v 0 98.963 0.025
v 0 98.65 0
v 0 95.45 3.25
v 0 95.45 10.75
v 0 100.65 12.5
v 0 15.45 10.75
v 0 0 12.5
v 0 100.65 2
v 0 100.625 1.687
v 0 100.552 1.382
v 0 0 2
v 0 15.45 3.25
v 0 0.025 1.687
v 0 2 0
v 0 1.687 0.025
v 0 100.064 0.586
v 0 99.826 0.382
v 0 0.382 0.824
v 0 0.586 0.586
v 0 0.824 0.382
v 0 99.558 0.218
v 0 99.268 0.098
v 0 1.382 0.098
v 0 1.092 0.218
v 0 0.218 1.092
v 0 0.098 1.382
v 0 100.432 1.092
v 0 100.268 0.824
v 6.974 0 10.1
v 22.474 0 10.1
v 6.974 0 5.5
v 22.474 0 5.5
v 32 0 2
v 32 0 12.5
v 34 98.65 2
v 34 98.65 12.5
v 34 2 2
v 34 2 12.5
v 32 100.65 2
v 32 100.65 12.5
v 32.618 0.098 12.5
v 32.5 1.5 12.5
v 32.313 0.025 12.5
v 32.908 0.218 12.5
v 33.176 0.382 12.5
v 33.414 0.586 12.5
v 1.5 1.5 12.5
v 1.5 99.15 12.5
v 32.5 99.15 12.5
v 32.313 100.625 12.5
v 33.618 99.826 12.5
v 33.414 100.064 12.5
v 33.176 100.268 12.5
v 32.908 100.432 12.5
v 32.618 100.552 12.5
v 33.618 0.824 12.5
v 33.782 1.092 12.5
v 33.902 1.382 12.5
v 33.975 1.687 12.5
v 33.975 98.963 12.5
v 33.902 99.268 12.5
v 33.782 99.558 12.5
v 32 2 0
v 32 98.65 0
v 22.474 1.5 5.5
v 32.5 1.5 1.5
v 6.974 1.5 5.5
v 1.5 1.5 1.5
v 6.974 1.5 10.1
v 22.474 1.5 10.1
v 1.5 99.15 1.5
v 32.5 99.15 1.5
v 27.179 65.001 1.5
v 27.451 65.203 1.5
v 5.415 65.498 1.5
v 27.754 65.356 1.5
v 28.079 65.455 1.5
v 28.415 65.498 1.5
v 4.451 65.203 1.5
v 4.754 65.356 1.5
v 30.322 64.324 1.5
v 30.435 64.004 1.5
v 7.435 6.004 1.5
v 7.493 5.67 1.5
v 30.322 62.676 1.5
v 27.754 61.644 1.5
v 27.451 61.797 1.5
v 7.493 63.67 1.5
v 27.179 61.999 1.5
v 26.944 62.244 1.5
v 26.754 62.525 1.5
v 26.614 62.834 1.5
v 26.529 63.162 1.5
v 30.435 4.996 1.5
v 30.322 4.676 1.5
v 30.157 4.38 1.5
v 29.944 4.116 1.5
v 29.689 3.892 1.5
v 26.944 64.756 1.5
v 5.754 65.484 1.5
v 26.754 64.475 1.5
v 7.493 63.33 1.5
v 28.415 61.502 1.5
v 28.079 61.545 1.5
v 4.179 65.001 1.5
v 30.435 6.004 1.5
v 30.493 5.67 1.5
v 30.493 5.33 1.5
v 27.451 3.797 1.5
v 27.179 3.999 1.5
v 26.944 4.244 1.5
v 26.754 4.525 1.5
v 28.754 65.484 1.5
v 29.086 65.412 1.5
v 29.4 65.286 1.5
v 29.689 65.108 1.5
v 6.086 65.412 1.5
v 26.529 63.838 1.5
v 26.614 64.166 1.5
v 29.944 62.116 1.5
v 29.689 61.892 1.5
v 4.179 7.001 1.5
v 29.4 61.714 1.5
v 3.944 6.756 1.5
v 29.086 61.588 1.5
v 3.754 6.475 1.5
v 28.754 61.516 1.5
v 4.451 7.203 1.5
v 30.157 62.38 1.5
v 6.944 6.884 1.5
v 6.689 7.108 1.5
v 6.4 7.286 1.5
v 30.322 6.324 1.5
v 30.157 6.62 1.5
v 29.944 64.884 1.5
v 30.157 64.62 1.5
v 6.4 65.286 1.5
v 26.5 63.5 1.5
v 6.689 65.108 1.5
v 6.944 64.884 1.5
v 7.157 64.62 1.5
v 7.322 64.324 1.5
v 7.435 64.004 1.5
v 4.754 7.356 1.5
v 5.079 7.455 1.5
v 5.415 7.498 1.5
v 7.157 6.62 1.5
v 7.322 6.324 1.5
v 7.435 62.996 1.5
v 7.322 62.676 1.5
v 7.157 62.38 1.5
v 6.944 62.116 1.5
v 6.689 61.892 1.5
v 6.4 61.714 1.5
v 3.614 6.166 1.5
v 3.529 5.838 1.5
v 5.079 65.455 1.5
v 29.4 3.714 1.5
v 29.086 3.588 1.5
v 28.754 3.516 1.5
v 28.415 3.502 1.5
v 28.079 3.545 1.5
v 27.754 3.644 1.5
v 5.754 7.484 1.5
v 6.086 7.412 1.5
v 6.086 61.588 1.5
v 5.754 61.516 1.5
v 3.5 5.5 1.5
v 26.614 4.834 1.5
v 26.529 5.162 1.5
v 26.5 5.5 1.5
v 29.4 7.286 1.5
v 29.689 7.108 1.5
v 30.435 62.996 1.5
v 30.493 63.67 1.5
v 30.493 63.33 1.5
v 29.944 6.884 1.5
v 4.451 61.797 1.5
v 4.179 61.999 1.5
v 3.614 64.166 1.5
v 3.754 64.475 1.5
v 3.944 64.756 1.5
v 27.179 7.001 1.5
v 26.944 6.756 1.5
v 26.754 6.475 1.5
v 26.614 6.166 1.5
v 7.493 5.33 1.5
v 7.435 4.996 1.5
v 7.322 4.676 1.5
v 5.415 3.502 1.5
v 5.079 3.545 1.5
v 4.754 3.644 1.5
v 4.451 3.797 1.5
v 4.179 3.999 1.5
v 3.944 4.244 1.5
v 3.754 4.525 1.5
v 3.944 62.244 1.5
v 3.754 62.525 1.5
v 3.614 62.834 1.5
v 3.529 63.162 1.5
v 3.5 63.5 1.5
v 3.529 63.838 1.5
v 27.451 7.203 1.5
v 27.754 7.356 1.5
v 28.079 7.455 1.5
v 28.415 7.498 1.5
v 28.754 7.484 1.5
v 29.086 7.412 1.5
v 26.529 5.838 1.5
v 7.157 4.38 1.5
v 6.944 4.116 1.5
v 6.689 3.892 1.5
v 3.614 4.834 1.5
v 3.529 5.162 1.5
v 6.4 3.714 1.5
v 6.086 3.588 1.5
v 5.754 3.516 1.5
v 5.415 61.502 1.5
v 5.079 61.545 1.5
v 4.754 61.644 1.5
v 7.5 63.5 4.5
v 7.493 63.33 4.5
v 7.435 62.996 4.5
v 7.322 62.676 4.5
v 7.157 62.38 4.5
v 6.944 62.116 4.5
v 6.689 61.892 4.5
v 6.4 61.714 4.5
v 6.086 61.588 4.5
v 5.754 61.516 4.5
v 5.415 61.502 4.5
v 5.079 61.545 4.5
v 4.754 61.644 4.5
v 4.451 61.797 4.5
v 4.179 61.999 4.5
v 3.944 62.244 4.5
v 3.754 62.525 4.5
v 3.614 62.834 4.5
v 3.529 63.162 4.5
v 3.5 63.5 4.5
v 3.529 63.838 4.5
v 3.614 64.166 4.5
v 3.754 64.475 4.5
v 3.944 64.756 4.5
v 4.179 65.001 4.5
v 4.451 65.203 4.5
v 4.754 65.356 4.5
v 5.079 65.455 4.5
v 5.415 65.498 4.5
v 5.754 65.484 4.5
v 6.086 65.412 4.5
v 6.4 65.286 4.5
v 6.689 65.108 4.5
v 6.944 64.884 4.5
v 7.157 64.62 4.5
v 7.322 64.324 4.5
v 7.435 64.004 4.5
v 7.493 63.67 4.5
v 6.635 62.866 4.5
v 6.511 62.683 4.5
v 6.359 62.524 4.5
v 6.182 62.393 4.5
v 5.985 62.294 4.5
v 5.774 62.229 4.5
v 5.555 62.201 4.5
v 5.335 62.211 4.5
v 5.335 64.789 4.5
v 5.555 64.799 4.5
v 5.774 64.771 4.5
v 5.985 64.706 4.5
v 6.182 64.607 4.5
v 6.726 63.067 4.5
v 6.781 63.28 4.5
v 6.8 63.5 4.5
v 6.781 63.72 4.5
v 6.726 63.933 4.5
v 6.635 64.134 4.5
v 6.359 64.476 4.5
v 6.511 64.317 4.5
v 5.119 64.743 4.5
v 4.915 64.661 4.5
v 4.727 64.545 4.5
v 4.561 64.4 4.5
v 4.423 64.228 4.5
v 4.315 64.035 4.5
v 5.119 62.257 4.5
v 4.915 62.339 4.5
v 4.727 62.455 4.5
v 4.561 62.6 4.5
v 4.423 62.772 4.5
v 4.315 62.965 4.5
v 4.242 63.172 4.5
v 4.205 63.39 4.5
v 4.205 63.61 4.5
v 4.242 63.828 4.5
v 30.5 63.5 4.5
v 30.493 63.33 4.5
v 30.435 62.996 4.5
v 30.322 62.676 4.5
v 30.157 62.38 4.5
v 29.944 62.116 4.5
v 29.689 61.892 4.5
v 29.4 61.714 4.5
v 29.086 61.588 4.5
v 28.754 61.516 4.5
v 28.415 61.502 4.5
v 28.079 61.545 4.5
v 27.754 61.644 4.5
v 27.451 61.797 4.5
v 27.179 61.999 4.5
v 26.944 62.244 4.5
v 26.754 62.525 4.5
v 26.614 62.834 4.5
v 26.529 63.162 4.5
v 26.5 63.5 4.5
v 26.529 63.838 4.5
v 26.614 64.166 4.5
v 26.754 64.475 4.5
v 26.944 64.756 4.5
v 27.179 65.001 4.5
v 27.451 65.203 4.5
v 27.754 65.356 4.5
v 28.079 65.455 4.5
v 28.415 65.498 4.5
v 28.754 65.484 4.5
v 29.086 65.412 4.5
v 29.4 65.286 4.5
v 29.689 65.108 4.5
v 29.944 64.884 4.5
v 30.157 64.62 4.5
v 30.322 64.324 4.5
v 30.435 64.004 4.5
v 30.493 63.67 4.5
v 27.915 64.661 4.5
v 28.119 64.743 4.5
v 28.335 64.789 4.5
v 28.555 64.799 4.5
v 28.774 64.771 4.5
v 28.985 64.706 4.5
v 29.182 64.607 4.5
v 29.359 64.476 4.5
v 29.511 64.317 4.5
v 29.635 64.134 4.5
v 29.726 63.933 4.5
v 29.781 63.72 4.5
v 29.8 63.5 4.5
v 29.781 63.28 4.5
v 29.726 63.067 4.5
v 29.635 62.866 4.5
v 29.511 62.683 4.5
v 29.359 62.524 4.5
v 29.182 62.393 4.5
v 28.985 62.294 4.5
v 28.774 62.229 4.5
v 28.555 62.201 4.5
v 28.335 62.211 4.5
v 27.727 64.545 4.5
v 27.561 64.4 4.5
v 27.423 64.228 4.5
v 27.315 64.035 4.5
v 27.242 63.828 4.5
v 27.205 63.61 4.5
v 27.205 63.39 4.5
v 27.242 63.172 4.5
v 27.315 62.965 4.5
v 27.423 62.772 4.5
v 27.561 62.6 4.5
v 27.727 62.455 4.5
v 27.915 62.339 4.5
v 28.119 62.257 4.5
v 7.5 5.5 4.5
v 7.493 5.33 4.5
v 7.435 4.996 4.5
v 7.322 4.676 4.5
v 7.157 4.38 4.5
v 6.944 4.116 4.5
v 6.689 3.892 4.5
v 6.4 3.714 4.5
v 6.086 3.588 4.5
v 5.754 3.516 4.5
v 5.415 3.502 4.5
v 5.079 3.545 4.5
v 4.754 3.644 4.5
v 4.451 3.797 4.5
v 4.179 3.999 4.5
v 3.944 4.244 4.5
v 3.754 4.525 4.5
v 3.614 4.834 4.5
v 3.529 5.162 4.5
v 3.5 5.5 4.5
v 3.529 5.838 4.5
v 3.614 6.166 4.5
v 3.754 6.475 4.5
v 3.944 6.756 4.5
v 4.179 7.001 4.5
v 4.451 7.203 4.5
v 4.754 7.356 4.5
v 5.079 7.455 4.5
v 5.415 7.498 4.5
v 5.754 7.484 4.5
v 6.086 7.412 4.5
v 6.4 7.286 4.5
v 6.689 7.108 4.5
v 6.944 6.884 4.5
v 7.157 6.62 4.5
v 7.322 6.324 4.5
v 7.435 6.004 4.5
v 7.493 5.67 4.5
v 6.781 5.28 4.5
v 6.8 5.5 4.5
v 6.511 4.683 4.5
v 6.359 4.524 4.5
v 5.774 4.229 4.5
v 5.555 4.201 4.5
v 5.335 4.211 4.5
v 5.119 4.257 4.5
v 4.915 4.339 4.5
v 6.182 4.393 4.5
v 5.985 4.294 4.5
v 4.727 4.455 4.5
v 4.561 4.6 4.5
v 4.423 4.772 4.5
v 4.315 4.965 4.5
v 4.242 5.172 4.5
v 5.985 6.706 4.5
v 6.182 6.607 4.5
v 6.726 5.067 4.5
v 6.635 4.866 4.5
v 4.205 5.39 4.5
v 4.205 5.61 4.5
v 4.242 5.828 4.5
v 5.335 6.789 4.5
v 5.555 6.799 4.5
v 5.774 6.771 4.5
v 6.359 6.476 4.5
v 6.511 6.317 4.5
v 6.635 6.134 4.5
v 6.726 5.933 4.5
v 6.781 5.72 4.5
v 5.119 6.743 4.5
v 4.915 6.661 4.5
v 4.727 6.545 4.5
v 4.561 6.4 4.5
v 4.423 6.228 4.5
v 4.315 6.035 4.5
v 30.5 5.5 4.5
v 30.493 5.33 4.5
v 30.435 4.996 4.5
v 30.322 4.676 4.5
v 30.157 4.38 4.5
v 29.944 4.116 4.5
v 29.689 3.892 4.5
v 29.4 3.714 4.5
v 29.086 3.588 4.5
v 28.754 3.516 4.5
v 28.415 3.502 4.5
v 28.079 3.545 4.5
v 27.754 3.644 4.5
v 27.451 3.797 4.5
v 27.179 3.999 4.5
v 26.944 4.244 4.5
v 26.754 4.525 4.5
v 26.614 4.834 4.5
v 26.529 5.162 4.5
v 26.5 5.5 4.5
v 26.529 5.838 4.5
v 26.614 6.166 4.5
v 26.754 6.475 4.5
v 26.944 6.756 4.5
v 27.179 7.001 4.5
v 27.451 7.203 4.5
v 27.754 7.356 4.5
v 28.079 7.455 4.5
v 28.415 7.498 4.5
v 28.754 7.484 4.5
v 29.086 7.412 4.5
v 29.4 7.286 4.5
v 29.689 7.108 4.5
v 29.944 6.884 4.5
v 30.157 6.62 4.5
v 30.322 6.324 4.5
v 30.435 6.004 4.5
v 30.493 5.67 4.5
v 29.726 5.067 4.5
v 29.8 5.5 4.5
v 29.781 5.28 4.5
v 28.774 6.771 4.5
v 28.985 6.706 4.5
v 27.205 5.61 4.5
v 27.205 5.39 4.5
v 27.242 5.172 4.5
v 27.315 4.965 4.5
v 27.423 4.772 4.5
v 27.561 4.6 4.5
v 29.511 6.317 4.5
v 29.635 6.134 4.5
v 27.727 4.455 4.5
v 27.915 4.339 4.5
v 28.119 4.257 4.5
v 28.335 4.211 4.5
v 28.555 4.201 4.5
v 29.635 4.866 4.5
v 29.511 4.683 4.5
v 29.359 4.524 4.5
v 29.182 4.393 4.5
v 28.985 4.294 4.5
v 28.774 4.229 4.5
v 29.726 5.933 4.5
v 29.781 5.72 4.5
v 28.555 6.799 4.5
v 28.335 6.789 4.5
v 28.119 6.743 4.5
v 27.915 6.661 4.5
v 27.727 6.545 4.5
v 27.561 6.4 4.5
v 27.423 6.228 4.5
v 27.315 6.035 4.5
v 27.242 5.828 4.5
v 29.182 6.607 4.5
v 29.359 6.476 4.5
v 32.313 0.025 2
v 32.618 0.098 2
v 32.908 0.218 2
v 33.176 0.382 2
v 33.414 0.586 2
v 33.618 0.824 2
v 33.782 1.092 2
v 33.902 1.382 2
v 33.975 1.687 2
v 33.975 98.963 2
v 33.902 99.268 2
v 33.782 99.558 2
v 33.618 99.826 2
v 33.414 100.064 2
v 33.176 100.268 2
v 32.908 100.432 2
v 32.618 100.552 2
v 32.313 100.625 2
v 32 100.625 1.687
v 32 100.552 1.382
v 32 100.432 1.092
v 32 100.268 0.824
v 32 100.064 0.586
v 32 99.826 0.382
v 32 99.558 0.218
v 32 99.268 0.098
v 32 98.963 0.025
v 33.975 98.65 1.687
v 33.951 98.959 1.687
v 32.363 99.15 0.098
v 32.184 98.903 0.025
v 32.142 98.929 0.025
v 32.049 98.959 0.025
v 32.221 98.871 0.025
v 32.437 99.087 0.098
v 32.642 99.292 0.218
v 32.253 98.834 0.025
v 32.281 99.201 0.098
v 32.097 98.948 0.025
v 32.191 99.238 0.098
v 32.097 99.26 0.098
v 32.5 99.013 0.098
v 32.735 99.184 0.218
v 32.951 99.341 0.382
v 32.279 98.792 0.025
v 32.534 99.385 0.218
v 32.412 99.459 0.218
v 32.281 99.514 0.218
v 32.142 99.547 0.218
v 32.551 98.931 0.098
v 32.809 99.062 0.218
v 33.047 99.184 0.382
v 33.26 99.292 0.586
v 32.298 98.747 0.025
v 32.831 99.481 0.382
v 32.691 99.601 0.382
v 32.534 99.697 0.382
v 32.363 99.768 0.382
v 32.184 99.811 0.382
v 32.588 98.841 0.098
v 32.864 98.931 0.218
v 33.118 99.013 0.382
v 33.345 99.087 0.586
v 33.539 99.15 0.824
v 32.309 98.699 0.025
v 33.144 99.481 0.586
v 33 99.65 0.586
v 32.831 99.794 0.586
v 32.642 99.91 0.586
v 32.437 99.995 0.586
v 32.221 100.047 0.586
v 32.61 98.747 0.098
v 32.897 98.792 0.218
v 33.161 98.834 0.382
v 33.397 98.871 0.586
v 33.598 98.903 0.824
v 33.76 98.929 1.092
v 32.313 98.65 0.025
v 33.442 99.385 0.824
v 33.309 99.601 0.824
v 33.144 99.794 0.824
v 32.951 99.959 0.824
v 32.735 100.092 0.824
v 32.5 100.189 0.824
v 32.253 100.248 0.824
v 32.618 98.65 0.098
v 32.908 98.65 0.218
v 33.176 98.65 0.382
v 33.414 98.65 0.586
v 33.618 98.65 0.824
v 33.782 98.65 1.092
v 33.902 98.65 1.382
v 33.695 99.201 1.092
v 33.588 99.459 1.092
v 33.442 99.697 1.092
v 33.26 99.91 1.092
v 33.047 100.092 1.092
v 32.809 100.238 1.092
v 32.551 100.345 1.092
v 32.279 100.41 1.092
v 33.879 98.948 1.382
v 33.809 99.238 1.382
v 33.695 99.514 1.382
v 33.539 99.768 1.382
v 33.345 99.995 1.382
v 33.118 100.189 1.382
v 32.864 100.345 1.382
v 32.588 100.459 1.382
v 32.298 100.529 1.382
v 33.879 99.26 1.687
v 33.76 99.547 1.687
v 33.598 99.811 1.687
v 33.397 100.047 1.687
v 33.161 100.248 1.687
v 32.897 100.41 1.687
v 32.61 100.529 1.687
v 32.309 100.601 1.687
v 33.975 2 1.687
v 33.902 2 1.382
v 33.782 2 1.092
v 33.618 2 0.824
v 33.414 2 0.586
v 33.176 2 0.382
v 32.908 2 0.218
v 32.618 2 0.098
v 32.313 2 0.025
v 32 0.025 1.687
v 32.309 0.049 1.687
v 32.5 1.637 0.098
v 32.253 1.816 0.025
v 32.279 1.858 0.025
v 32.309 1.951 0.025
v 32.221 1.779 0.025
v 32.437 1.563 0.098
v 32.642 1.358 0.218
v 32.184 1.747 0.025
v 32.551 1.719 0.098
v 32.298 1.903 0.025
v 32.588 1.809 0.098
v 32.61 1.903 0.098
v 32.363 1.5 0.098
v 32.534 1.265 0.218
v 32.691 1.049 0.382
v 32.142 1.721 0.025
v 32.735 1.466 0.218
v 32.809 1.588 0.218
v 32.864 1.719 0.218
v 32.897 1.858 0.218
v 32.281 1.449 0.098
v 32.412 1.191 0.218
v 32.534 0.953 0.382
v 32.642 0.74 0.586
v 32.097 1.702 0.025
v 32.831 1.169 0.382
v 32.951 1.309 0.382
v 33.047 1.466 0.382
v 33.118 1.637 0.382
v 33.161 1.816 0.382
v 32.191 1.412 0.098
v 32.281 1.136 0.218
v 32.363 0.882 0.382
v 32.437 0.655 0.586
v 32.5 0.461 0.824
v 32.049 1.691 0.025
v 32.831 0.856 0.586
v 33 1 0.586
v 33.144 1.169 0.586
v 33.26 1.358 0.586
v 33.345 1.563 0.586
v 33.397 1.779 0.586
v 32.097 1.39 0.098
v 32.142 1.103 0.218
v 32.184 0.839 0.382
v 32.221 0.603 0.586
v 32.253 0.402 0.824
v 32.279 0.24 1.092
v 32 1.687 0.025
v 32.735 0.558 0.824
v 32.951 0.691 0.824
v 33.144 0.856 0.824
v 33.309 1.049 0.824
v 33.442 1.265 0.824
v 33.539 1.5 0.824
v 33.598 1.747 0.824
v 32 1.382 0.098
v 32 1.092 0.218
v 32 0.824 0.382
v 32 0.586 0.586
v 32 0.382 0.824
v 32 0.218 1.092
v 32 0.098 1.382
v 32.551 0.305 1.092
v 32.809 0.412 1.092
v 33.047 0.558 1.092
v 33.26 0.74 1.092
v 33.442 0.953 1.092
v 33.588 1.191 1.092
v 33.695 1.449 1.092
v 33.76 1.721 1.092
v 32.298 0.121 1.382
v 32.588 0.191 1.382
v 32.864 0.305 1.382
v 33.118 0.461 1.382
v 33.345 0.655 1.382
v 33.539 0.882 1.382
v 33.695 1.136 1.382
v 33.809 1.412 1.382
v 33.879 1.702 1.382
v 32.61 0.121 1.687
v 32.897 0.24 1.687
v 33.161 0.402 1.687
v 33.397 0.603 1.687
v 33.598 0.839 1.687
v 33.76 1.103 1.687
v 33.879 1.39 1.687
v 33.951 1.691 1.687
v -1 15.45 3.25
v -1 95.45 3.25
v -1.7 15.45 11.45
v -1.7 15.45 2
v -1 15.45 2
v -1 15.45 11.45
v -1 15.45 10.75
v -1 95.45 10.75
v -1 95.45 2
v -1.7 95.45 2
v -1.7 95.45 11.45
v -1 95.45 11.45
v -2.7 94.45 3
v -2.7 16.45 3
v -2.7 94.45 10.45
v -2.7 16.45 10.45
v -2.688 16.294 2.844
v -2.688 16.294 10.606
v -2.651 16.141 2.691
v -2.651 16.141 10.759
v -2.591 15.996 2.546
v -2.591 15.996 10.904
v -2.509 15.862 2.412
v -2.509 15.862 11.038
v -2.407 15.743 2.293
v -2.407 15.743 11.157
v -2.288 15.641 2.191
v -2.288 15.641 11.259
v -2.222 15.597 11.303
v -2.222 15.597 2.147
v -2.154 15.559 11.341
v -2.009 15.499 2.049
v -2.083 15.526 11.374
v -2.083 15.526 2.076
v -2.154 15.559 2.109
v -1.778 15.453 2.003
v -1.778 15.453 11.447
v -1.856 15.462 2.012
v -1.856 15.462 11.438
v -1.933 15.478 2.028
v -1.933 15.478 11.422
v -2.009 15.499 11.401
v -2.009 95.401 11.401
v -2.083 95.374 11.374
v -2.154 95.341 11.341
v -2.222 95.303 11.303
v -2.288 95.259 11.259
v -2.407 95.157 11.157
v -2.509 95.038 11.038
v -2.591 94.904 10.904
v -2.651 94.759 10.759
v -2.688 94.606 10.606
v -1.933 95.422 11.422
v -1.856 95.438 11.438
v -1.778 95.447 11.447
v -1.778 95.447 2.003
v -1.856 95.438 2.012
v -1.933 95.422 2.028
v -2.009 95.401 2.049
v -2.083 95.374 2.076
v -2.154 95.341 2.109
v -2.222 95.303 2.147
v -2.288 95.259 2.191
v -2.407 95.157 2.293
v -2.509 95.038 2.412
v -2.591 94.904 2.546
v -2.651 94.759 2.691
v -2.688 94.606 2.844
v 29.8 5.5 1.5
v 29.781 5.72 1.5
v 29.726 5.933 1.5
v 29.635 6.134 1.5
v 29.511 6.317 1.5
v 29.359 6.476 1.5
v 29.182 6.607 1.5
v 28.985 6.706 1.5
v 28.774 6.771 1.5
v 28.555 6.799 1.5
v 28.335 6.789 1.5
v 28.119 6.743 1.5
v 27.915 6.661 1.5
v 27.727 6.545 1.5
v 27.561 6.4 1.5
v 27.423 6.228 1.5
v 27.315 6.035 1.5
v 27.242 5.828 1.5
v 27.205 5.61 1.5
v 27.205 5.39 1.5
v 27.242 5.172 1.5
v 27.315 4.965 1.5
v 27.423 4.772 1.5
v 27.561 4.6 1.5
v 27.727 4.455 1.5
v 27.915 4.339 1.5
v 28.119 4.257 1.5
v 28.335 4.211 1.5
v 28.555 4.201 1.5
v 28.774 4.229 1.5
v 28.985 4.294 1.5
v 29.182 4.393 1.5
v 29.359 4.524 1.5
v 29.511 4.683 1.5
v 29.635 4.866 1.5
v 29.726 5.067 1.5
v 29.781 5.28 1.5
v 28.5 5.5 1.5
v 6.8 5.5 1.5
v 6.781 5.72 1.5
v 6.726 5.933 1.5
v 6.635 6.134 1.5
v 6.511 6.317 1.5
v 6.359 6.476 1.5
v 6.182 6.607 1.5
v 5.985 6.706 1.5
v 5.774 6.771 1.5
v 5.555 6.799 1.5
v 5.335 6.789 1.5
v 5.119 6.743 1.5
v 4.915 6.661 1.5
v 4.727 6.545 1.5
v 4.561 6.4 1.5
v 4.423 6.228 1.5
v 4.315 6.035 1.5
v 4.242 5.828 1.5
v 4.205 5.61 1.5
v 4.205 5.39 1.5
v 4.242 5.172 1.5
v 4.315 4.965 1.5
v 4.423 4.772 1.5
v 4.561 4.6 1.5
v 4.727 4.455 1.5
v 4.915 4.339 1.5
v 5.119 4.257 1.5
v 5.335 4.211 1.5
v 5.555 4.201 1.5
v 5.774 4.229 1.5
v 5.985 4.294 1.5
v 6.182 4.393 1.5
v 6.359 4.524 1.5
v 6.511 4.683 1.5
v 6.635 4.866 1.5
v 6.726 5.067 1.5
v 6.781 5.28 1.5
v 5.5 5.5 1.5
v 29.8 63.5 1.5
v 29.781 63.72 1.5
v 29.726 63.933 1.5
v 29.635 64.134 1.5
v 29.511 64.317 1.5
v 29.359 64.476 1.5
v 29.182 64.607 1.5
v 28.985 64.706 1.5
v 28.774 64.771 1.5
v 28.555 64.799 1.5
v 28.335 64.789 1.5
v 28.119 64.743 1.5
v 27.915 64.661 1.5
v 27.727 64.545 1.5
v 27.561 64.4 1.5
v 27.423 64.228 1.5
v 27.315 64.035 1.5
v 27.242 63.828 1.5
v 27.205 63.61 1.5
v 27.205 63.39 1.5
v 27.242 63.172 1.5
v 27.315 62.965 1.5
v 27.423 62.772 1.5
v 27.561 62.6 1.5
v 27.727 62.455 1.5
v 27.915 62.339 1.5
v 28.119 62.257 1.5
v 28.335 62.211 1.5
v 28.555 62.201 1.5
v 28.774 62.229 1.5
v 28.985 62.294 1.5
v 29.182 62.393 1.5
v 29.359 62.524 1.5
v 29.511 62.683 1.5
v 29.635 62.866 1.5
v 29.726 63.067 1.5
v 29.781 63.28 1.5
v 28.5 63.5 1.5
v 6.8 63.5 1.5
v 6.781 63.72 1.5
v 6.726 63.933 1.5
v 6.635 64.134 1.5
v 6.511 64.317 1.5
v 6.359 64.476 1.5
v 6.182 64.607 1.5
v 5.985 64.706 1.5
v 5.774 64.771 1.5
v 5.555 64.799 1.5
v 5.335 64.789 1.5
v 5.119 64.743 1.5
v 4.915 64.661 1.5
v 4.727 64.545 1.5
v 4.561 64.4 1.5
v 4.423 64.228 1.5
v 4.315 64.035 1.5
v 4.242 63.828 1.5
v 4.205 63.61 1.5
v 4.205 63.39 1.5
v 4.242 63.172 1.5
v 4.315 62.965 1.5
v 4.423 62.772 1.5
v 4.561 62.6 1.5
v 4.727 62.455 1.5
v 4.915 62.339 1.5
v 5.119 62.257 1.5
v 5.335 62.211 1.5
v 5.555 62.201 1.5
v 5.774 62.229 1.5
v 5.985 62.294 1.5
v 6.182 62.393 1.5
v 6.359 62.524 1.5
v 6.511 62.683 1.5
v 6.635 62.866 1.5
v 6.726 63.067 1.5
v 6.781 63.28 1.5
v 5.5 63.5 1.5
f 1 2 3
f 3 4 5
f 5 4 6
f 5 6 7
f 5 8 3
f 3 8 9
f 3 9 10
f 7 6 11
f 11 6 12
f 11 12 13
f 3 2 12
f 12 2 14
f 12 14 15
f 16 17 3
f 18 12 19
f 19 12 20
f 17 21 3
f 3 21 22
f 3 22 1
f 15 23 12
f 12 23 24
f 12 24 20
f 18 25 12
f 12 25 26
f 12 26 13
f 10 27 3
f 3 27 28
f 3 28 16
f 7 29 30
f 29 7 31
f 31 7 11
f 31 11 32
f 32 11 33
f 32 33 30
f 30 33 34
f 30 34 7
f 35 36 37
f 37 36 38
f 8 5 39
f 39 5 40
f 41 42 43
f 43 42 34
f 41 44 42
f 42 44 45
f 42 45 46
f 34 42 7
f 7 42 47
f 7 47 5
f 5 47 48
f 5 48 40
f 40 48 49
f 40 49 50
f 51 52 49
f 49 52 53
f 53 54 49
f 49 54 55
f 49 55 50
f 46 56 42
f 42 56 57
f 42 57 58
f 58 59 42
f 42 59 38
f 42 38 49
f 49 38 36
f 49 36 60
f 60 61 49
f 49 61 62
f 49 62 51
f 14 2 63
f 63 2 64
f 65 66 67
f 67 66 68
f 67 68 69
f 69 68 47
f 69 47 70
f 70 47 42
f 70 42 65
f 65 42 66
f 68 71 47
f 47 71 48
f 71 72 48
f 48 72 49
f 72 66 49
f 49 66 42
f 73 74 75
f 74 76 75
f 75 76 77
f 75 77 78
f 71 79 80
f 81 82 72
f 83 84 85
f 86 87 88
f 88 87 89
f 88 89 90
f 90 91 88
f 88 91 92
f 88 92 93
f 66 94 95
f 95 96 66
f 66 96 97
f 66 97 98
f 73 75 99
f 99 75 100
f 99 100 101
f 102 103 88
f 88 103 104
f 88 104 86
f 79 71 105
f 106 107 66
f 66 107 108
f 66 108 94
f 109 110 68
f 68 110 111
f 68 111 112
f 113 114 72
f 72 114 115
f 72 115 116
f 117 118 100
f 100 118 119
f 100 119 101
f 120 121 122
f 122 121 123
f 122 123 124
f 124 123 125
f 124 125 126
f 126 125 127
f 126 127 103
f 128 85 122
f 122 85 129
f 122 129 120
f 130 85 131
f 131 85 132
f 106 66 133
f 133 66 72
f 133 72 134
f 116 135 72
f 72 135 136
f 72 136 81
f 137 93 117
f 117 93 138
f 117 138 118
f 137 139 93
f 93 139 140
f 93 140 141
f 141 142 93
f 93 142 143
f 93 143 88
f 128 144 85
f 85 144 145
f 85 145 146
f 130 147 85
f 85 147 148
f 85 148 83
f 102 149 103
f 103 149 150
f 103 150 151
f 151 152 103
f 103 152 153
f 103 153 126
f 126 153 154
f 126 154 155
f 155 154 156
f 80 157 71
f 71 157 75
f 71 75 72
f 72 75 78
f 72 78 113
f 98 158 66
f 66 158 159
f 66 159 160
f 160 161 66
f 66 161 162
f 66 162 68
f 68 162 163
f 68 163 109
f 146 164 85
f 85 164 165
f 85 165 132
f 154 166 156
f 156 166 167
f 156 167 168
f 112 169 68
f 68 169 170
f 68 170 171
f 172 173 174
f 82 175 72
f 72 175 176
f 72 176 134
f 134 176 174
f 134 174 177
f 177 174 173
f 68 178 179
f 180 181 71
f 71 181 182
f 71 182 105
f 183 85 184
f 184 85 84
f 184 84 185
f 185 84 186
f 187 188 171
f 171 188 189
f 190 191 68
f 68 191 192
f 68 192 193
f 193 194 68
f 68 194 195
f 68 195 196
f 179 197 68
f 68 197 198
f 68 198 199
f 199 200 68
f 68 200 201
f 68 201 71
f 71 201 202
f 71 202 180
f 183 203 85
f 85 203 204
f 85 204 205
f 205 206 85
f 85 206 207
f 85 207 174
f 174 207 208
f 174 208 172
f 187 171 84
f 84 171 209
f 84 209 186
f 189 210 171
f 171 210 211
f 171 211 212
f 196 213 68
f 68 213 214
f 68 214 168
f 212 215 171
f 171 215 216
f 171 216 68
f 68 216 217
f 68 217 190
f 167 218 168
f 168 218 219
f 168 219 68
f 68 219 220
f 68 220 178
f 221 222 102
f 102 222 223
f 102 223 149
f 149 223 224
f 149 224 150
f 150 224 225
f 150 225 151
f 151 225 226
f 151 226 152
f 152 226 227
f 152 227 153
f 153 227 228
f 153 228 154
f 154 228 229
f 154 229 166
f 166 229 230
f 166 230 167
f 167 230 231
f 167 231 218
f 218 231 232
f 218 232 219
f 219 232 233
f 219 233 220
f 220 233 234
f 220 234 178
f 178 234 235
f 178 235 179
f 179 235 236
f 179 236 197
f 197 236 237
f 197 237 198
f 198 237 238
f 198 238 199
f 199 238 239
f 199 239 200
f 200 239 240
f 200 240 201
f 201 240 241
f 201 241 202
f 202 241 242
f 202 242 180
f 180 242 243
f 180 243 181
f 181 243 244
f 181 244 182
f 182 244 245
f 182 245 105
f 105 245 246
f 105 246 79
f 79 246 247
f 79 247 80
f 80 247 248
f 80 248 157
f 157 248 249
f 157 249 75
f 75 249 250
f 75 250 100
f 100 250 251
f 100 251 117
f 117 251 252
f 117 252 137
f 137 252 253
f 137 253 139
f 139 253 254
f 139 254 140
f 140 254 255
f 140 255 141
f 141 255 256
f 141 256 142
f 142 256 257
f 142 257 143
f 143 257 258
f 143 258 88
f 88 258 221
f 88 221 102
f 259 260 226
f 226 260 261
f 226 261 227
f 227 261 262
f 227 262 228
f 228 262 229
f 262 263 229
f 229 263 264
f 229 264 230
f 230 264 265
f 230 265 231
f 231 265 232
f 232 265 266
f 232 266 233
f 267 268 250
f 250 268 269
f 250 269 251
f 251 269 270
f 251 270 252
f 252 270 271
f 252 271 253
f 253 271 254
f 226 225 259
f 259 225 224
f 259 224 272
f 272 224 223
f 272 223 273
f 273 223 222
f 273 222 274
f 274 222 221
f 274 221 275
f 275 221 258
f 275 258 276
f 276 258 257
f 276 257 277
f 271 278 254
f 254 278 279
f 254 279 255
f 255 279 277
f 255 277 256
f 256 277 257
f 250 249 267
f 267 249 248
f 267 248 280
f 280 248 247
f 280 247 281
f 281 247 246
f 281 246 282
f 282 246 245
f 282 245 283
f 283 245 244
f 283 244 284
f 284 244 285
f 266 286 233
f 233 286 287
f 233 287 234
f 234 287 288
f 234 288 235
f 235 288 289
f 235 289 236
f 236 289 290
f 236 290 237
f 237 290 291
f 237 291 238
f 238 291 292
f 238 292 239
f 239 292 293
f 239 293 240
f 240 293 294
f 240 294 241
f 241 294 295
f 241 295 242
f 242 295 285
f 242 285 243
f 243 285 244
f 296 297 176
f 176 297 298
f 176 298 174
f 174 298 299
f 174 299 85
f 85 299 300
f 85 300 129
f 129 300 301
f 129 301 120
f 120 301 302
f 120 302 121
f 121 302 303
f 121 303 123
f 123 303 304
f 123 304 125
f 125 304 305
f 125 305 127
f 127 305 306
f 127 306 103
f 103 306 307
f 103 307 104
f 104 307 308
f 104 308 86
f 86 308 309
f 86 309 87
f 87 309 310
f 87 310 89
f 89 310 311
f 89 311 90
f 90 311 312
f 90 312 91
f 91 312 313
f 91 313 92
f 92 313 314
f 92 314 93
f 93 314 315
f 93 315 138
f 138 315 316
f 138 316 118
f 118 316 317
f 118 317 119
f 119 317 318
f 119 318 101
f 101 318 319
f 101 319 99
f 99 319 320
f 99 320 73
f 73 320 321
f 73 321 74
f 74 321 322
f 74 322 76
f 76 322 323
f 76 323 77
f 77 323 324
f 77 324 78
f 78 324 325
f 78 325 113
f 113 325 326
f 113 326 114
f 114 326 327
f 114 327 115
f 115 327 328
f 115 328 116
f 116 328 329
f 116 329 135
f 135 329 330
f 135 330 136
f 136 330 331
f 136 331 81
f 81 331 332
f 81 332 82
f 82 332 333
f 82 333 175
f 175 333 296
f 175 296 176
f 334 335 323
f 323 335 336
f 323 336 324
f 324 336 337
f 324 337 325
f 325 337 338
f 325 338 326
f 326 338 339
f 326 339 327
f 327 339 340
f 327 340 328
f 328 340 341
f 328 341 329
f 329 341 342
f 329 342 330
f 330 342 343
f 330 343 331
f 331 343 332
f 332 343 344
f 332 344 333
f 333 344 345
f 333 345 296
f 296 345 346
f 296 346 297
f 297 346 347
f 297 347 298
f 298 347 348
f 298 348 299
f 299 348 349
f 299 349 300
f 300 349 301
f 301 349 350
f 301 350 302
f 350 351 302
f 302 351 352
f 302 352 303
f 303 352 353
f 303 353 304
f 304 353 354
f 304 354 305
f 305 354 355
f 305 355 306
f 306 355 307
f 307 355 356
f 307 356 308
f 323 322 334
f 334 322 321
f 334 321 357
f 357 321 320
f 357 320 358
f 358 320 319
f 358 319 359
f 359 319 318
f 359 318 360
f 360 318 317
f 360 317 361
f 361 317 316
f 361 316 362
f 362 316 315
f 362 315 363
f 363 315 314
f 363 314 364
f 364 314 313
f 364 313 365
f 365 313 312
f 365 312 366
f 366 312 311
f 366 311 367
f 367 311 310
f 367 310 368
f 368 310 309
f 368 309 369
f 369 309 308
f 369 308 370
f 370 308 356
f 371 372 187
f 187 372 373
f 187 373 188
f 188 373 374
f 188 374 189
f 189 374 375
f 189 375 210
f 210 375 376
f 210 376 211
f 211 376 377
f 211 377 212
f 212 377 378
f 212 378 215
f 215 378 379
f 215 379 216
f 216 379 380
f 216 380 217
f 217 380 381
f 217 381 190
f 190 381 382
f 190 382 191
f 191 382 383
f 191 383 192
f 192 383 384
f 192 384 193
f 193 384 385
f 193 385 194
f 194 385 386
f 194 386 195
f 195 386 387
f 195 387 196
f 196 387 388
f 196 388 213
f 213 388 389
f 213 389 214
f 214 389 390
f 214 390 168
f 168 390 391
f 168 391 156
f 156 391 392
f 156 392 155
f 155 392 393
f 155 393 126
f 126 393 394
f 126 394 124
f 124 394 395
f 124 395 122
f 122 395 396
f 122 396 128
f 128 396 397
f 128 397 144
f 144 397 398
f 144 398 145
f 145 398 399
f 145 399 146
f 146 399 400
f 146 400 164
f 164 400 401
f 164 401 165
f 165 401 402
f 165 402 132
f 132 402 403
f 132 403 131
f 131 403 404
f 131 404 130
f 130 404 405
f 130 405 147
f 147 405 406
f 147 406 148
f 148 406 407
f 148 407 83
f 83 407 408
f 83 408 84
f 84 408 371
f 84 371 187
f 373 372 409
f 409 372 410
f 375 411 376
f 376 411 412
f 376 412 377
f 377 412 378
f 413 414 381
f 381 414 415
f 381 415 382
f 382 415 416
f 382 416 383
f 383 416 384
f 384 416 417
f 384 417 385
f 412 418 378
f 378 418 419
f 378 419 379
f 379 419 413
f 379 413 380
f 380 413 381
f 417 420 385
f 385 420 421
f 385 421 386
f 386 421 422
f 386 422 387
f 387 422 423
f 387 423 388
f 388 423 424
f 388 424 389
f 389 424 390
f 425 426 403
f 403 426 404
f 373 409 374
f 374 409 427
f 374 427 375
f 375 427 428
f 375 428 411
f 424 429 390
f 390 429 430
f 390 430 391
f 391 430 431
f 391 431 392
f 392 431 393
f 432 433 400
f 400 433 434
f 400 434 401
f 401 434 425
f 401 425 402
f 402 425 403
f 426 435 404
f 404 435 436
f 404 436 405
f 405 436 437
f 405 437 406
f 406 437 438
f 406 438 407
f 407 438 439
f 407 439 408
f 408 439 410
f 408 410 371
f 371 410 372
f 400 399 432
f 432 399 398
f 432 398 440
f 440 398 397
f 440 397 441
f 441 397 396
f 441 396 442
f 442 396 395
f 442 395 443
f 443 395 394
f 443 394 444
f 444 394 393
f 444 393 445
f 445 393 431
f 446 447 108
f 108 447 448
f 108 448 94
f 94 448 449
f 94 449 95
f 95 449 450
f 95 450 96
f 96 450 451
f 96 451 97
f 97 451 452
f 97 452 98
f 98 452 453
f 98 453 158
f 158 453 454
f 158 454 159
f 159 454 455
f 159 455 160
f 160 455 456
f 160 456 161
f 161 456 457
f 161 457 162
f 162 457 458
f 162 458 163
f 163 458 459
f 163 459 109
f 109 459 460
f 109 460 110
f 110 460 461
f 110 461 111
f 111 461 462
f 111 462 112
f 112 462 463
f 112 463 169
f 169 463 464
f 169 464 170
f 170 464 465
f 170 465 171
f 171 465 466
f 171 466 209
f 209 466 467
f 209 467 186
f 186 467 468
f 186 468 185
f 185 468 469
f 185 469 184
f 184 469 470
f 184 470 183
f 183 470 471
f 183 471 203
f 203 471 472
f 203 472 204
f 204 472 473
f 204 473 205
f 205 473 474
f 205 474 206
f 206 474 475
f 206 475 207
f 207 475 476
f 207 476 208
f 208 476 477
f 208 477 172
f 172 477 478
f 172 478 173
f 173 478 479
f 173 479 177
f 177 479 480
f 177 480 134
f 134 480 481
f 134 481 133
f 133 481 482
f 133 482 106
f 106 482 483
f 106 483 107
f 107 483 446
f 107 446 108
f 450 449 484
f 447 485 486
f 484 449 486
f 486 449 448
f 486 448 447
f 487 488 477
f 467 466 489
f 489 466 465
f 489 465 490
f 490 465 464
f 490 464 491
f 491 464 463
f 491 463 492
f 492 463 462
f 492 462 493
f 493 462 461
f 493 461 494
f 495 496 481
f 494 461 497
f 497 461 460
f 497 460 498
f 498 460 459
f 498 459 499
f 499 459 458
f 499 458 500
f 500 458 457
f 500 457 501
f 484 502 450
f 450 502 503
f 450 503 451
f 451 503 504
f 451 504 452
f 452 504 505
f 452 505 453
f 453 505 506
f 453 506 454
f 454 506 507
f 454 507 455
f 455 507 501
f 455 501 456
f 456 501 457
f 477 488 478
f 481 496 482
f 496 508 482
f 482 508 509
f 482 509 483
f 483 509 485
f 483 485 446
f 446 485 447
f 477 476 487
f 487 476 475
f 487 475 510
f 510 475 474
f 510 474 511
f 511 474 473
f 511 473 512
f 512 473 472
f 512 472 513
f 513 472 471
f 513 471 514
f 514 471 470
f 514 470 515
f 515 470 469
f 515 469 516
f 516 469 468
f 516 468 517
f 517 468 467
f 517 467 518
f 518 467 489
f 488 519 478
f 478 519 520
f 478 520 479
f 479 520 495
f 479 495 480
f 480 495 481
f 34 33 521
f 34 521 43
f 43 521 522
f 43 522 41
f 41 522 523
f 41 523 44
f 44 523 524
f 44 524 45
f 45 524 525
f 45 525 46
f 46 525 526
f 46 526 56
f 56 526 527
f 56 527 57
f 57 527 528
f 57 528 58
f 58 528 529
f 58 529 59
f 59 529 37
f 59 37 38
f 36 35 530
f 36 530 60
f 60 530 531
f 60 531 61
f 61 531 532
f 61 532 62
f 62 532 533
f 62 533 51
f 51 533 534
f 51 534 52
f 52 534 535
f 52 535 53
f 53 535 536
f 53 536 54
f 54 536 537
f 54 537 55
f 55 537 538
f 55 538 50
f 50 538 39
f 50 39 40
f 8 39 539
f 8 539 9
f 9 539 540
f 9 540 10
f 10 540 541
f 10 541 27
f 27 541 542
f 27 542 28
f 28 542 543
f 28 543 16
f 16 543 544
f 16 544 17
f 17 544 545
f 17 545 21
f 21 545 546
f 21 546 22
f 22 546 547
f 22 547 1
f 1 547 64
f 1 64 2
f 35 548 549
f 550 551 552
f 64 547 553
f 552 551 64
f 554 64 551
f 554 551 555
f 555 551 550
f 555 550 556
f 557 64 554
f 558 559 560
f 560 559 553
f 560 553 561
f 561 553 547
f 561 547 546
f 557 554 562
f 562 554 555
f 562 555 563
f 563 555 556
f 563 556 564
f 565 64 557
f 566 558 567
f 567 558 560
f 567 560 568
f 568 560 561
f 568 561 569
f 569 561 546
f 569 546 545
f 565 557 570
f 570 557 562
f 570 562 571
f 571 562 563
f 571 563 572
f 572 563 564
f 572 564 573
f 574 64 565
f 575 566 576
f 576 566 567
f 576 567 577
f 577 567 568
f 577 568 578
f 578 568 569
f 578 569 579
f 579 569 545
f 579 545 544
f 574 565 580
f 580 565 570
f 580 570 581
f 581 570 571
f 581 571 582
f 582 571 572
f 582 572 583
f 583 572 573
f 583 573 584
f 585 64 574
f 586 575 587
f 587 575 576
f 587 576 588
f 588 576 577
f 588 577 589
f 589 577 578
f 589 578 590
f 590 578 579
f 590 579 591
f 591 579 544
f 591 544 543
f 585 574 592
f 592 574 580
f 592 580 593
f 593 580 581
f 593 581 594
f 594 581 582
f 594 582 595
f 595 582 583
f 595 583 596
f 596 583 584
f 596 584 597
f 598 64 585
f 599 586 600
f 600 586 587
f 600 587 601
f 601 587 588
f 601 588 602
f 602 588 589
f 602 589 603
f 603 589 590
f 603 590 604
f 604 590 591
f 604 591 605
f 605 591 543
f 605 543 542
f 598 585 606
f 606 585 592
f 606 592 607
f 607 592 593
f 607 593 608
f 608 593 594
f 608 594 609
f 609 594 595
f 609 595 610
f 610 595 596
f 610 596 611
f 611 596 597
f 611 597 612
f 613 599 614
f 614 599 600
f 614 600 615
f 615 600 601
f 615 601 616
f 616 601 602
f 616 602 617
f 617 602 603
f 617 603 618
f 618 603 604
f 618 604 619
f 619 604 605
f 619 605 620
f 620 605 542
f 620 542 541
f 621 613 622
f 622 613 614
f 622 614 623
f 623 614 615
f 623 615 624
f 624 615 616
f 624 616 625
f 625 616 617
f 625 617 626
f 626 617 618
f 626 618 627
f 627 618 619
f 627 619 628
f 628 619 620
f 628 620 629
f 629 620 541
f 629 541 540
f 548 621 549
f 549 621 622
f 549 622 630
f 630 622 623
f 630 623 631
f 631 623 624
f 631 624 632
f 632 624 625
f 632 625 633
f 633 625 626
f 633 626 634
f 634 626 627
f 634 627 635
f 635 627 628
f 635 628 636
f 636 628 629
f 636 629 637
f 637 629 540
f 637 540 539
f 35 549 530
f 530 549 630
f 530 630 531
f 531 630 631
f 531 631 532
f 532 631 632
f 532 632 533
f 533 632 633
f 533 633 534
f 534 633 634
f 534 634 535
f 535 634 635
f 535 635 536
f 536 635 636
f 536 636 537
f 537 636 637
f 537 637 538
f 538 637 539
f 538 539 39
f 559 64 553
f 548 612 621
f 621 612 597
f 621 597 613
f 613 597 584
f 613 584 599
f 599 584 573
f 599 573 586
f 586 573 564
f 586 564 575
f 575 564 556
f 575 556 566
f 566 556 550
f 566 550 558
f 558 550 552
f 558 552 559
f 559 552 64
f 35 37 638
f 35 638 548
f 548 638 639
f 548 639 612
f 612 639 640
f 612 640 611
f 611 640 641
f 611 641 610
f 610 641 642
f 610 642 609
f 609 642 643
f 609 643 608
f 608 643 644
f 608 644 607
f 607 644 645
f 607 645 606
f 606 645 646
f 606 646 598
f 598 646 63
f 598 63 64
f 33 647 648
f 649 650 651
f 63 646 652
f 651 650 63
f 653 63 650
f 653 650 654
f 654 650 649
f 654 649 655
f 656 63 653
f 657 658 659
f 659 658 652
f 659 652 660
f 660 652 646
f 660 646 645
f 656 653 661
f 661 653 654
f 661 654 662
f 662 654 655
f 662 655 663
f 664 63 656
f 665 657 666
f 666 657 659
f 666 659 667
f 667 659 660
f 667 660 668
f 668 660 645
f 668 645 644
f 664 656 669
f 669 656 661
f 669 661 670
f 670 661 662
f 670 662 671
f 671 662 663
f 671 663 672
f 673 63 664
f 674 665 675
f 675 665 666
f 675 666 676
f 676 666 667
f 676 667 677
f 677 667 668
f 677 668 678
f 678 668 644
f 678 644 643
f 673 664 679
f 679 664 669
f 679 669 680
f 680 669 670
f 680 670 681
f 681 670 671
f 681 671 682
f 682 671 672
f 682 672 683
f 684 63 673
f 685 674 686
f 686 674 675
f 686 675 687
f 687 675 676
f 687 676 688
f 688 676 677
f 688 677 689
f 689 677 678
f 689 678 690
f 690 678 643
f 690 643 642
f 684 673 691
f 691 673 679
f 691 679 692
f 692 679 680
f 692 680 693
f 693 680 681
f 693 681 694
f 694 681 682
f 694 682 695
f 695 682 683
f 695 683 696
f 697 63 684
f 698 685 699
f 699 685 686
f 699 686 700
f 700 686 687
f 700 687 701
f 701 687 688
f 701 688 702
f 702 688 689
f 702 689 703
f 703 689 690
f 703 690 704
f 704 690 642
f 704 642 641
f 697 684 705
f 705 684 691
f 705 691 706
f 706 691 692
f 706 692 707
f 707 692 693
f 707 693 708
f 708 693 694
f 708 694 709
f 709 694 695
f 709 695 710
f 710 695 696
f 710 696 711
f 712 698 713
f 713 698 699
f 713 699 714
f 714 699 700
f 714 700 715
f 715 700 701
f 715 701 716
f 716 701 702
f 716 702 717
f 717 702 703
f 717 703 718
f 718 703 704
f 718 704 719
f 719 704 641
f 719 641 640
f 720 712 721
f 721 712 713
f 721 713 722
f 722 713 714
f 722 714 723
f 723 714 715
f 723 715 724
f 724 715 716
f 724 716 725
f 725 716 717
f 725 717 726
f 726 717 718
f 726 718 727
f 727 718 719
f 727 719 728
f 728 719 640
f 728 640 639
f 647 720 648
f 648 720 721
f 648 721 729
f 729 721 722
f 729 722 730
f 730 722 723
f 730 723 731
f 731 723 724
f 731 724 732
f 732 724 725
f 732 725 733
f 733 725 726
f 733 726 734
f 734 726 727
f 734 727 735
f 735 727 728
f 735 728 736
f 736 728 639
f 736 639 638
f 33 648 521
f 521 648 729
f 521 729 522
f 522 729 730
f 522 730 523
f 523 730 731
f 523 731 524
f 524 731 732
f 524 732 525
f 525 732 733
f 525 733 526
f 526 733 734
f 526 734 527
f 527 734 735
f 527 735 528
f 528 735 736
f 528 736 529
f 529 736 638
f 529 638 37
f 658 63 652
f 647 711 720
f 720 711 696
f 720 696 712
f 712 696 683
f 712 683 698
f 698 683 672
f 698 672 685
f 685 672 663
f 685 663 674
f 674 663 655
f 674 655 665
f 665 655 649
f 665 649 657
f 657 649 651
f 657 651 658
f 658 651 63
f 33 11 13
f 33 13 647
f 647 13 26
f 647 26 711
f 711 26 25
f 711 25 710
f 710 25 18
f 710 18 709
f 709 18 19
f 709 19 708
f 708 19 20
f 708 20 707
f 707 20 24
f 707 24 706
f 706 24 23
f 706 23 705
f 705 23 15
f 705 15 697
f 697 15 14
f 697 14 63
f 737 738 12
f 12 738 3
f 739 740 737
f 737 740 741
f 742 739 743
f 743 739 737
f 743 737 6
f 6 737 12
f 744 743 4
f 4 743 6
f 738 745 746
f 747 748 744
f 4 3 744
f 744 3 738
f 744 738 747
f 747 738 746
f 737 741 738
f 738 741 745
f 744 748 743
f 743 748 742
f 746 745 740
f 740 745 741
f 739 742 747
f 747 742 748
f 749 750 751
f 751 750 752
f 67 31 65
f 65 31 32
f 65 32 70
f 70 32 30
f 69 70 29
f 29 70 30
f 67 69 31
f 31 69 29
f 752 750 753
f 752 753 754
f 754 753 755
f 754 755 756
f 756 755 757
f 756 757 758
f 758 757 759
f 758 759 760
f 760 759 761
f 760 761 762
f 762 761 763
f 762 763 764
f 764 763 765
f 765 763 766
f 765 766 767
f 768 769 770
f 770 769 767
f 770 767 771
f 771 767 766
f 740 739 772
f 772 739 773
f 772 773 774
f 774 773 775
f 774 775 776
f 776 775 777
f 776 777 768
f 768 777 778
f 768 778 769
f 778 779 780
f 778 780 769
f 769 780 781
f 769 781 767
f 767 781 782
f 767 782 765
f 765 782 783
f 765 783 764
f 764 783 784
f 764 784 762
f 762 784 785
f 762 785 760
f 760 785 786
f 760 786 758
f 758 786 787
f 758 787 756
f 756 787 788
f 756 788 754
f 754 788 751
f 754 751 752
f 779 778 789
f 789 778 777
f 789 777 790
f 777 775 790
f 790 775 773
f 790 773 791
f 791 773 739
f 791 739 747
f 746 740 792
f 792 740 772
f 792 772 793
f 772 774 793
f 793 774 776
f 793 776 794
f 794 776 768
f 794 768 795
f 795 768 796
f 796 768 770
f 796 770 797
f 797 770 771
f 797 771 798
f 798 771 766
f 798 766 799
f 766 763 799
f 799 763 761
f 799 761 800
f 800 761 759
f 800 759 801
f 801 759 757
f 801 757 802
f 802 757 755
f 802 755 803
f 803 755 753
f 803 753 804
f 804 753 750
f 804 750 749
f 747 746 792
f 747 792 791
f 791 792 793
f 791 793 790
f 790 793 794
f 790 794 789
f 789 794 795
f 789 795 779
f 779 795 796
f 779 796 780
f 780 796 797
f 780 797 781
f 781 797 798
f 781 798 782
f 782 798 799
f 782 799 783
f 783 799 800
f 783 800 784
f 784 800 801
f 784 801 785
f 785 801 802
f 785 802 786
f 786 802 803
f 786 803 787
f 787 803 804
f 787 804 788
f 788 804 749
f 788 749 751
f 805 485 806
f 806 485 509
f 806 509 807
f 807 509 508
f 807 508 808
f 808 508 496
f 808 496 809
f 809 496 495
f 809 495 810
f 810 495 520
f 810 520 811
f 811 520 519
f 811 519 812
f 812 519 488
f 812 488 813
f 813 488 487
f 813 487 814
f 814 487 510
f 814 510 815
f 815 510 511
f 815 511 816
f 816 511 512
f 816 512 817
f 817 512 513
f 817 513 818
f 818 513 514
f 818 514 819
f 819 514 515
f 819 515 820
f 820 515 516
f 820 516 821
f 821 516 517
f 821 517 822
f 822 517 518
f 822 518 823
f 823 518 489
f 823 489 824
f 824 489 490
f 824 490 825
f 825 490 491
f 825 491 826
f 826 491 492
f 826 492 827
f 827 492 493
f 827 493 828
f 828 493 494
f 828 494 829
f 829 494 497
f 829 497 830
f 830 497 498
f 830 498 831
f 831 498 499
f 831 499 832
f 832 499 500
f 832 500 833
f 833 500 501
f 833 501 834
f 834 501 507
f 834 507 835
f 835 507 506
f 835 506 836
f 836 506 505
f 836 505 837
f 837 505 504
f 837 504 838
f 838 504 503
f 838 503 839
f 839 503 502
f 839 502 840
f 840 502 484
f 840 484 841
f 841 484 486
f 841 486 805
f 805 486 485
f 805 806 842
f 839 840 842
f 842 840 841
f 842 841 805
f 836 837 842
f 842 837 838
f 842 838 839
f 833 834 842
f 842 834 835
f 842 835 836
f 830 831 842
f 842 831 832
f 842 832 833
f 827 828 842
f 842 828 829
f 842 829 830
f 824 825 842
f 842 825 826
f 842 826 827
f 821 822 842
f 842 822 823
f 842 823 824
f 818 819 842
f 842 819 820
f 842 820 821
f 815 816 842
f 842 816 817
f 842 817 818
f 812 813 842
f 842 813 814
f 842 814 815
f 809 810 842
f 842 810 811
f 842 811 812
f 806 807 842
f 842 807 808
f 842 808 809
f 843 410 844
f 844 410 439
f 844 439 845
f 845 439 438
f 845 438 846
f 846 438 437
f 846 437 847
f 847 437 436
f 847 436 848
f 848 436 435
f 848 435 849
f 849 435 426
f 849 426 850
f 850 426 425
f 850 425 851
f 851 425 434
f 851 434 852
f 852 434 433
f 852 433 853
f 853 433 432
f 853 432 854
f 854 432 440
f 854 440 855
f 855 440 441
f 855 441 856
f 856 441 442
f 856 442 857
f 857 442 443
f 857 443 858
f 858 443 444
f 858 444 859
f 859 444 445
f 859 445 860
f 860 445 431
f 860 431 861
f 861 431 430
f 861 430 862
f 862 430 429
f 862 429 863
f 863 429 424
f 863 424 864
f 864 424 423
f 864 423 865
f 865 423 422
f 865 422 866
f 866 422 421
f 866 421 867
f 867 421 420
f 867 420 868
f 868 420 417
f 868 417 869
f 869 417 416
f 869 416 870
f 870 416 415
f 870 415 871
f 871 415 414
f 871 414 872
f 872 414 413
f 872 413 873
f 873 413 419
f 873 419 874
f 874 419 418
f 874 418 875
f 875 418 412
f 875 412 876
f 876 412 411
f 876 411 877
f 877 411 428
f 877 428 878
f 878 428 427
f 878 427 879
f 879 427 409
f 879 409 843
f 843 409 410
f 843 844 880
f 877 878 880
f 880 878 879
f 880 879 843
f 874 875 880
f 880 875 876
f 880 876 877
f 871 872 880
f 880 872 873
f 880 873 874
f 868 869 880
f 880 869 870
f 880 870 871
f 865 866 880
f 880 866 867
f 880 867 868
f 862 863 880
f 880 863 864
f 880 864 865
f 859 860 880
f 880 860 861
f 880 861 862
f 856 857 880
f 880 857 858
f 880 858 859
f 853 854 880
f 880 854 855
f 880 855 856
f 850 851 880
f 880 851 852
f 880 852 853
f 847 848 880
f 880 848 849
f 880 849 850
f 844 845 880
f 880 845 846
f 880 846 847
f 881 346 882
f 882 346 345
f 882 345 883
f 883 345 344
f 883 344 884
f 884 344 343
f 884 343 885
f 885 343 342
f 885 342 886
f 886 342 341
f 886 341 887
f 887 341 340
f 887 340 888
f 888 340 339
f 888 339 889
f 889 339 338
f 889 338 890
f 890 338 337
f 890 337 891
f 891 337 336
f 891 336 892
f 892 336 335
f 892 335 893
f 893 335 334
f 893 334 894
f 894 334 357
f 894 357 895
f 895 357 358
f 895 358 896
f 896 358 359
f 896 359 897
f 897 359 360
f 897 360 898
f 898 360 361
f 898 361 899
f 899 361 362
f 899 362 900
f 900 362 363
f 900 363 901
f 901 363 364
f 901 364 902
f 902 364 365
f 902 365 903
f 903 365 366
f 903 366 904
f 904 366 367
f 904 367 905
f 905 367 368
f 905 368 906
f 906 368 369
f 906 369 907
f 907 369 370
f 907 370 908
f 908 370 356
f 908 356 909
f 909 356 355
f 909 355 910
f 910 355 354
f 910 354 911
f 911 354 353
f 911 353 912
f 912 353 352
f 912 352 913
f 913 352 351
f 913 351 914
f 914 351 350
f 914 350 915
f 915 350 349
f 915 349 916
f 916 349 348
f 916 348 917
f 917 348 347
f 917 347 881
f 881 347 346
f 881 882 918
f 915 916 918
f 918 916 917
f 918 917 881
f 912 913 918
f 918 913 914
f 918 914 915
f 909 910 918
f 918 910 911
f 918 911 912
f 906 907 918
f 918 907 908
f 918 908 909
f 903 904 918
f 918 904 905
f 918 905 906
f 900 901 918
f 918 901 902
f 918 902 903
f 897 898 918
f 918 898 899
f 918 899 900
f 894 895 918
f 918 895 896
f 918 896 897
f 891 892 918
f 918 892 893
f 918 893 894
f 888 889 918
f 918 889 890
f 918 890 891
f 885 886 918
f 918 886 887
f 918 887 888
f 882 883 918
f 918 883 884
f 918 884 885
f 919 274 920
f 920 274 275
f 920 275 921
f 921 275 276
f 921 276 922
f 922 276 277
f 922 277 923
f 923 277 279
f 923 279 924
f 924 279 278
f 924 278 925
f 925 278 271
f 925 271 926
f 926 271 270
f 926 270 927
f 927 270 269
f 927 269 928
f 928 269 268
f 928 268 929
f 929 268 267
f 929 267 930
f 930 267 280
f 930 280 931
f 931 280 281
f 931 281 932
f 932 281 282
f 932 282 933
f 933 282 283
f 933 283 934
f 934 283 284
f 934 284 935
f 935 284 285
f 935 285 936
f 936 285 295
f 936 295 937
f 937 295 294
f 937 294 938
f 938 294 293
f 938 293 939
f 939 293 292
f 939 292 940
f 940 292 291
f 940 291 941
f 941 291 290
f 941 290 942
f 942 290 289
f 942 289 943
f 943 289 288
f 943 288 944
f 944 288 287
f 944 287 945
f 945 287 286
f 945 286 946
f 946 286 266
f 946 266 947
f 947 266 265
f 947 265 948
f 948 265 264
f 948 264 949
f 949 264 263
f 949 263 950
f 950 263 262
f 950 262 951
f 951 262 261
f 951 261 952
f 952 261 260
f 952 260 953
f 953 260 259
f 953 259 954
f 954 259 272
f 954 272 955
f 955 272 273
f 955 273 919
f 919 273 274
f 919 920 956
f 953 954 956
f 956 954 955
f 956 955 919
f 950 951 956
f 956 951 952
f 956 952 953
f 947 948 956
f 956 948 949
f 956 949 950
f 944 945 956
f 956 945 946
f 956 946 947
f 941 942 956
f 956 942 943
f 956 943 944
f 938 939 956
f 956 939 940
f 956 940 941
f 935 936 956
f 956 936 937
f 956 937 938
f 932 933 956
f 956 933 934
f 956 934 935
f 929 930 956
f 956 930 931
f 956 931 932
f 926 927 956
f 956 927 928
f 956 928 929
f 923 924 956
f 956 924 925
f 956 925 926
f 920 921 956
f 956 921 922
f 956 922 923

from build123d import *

# Parameters (mm, degrees)
ESQUISSE1_W             = 34
ESQUISSE1_H             = 100.65
BOSS_EXTRU_1_DEPTH      = 12.5
ESQUISSE2_W             = 31
ESQUISSE2_H             = 97.65
ENL_V_MAT_EXTRU_1_DEPTH = 11
ESQUISSE5_R             = 2
BOSS_EXTRU_4_DEPTH      = 3
CONG_2_R                = 2
CONG_3_R                = 2
CONG_4_R                = 2
ESQUISSE7_W             = 7.5
ESQUISSE7_H             = 80
BOSS_EXTRU_6_DEPTH      = 1
ESQUISSE9_W             = 9.45
ESQUISSE9_H             = 80
BOSS_EXTRU_7_DEPTH      = 1.7
ESQUISSE11_W            = 15.5
ESQUISSE11_H            = 4.6
ENL_V_MAT_EXTRU_3_DEPTH = 3
CONG_7_R                = 1
ESQUISSE12_R            = 1.3
ENL_V_MAT_EXTRU_5_DEPTH = 3


with BuildPart() as part:
    # Esquisse1 → Boss.-Extru.1 (new body)
    with BuildSketch(Plane.XY):
        with Locations((17, 50.325)):
            Rectangle(ESQUISSE1_W, ESQUISSE1_H)
    extrude(amount=BOSS_EXTRU_1_DEPTH)

    # Esquisse2 → Enlèv. mat.-Extru.1 (cut)
    with BuildSketch(Plane.XY.offset(12.5)):
        with Locations((17, 50.325)):
            Rectangle(ESQUISSE2_W, ESQUISSE2_H)
    extrude(amount=-ENL_V_MAT_EXTRU_1_DEPTH, mode=Mode.SUBTRACT)

    # Esquisse5 → Boss.-Extru.4 (add)
    with BuildSketch(Plane.XY.offset(1.5)):
        with Locations((5.5, 63.5)):
            Circle(ESQUISSE5_R)
        with Locations((28.5, 63.5)):
            Circle(ESQUISSE5_R)
        with Locations((5.5, 5.5)):
            Circle(ESQUISSE5_R)
        with Locations((28.5, 5.5)):
            Circle(ESQUISSE5_R)
    extrude(amount=BOSS_EXTRU_4_DEPTH)

    # Congé2
    cong_2_edges = [part.edges().sort_by_distance(p)[0] for p in [
        (34, 0, 6.25),
    ]]
    fillet(cong_2_edges, radius=CONG_2_R)

    # Congé3
    cong_3_edges = [part.edges().sort_by_distance(p)[0] for p in [
        (34, 100.65, 6.25),
    ]]
    fillet(cong_3_edges, radius=CONG_3_R)

    # Congé4
    cong_4_edges = [part.edges().sort_by_distance(p)[0] for p in [
        (34, 50.325, 0),
        (33.414213562, 0.585786438, 0),
        (16, 100.65, 0),
        (33.414213562, 100.064213562, 0),
        (16, 0, 0),
    ]]
    fillet(cong_4_edges, radius=CONG_4_R)

    # Esquisse7 → Boss.-Extru.6 (add)
    with BuildSketch(Plane.ZY):
        with Locations((7, 55.45)):
            Rectangle(ESQUISSE7_W, ESQUISSE7_H)
    extrude(amount=BOSS_EXTRU_6_DEPTH)

    # Esquisse9 → Boss.-Extru.7 (add)
    with BuildSketch(Plane.ZY.offset(1)):
        with Locations((6.725, 55.45)):
            Rectangle(ESQUISSE9_W, ESQUISSE9_H)
    extrude(amount=BOSS_EXTRU_7_DEPTH)

    # Esquisse11 → Enlèv. mat.-Extru.3 (cut)
    with BuildSketch(Plane(origin=(0, 1.5, 0), x_dir=(1, 0, 0), z_dir=(0, 1, 0))):
        with Locations((14.724178104, -7.8)):
            Rectangle(ESQUISSE11_W, ESQUISSE11_H)
    extrude(amount=-ENL_V_MAT_EXTRU_3_DEPTH, mode=Mode.SUBTRACT)

    # Congé7
    cong_7_edges = [part.edges().sort_by_distance(p)[0] for p in [
        (-2.7, 55.45, 2),
        (-2.7, 15.45, 6.725),
        (-2.7, 55.45, 11.45),
        (-2.7, 95.45, 6.725),
    ]]
    fillet(cong_7_edges, radius=CONG_7_R)

    # Esquisse12 → Enlèv. mat.-Extru.5 (cut)
    with BuildSketch(Plane.XY.offset(4.5)):
        with Locations((5.5, 63.5)):
            Circle(ESQUISSE12_R)
        with Locations((28.5, 63.5)):
            Circle(ESQUISSE12_R)
        with Locations((5.5, 5.5)):
            Circle(ESQUISSE12_R)
        with Locations((28.5, 5.5)):
            Circle(ESQUISSE12_R)
    extrude(amount=-ENL_V_MAT_EXTRU_5_DEPTH, mode=Mode.SUBTRACT)


solid = part.part
